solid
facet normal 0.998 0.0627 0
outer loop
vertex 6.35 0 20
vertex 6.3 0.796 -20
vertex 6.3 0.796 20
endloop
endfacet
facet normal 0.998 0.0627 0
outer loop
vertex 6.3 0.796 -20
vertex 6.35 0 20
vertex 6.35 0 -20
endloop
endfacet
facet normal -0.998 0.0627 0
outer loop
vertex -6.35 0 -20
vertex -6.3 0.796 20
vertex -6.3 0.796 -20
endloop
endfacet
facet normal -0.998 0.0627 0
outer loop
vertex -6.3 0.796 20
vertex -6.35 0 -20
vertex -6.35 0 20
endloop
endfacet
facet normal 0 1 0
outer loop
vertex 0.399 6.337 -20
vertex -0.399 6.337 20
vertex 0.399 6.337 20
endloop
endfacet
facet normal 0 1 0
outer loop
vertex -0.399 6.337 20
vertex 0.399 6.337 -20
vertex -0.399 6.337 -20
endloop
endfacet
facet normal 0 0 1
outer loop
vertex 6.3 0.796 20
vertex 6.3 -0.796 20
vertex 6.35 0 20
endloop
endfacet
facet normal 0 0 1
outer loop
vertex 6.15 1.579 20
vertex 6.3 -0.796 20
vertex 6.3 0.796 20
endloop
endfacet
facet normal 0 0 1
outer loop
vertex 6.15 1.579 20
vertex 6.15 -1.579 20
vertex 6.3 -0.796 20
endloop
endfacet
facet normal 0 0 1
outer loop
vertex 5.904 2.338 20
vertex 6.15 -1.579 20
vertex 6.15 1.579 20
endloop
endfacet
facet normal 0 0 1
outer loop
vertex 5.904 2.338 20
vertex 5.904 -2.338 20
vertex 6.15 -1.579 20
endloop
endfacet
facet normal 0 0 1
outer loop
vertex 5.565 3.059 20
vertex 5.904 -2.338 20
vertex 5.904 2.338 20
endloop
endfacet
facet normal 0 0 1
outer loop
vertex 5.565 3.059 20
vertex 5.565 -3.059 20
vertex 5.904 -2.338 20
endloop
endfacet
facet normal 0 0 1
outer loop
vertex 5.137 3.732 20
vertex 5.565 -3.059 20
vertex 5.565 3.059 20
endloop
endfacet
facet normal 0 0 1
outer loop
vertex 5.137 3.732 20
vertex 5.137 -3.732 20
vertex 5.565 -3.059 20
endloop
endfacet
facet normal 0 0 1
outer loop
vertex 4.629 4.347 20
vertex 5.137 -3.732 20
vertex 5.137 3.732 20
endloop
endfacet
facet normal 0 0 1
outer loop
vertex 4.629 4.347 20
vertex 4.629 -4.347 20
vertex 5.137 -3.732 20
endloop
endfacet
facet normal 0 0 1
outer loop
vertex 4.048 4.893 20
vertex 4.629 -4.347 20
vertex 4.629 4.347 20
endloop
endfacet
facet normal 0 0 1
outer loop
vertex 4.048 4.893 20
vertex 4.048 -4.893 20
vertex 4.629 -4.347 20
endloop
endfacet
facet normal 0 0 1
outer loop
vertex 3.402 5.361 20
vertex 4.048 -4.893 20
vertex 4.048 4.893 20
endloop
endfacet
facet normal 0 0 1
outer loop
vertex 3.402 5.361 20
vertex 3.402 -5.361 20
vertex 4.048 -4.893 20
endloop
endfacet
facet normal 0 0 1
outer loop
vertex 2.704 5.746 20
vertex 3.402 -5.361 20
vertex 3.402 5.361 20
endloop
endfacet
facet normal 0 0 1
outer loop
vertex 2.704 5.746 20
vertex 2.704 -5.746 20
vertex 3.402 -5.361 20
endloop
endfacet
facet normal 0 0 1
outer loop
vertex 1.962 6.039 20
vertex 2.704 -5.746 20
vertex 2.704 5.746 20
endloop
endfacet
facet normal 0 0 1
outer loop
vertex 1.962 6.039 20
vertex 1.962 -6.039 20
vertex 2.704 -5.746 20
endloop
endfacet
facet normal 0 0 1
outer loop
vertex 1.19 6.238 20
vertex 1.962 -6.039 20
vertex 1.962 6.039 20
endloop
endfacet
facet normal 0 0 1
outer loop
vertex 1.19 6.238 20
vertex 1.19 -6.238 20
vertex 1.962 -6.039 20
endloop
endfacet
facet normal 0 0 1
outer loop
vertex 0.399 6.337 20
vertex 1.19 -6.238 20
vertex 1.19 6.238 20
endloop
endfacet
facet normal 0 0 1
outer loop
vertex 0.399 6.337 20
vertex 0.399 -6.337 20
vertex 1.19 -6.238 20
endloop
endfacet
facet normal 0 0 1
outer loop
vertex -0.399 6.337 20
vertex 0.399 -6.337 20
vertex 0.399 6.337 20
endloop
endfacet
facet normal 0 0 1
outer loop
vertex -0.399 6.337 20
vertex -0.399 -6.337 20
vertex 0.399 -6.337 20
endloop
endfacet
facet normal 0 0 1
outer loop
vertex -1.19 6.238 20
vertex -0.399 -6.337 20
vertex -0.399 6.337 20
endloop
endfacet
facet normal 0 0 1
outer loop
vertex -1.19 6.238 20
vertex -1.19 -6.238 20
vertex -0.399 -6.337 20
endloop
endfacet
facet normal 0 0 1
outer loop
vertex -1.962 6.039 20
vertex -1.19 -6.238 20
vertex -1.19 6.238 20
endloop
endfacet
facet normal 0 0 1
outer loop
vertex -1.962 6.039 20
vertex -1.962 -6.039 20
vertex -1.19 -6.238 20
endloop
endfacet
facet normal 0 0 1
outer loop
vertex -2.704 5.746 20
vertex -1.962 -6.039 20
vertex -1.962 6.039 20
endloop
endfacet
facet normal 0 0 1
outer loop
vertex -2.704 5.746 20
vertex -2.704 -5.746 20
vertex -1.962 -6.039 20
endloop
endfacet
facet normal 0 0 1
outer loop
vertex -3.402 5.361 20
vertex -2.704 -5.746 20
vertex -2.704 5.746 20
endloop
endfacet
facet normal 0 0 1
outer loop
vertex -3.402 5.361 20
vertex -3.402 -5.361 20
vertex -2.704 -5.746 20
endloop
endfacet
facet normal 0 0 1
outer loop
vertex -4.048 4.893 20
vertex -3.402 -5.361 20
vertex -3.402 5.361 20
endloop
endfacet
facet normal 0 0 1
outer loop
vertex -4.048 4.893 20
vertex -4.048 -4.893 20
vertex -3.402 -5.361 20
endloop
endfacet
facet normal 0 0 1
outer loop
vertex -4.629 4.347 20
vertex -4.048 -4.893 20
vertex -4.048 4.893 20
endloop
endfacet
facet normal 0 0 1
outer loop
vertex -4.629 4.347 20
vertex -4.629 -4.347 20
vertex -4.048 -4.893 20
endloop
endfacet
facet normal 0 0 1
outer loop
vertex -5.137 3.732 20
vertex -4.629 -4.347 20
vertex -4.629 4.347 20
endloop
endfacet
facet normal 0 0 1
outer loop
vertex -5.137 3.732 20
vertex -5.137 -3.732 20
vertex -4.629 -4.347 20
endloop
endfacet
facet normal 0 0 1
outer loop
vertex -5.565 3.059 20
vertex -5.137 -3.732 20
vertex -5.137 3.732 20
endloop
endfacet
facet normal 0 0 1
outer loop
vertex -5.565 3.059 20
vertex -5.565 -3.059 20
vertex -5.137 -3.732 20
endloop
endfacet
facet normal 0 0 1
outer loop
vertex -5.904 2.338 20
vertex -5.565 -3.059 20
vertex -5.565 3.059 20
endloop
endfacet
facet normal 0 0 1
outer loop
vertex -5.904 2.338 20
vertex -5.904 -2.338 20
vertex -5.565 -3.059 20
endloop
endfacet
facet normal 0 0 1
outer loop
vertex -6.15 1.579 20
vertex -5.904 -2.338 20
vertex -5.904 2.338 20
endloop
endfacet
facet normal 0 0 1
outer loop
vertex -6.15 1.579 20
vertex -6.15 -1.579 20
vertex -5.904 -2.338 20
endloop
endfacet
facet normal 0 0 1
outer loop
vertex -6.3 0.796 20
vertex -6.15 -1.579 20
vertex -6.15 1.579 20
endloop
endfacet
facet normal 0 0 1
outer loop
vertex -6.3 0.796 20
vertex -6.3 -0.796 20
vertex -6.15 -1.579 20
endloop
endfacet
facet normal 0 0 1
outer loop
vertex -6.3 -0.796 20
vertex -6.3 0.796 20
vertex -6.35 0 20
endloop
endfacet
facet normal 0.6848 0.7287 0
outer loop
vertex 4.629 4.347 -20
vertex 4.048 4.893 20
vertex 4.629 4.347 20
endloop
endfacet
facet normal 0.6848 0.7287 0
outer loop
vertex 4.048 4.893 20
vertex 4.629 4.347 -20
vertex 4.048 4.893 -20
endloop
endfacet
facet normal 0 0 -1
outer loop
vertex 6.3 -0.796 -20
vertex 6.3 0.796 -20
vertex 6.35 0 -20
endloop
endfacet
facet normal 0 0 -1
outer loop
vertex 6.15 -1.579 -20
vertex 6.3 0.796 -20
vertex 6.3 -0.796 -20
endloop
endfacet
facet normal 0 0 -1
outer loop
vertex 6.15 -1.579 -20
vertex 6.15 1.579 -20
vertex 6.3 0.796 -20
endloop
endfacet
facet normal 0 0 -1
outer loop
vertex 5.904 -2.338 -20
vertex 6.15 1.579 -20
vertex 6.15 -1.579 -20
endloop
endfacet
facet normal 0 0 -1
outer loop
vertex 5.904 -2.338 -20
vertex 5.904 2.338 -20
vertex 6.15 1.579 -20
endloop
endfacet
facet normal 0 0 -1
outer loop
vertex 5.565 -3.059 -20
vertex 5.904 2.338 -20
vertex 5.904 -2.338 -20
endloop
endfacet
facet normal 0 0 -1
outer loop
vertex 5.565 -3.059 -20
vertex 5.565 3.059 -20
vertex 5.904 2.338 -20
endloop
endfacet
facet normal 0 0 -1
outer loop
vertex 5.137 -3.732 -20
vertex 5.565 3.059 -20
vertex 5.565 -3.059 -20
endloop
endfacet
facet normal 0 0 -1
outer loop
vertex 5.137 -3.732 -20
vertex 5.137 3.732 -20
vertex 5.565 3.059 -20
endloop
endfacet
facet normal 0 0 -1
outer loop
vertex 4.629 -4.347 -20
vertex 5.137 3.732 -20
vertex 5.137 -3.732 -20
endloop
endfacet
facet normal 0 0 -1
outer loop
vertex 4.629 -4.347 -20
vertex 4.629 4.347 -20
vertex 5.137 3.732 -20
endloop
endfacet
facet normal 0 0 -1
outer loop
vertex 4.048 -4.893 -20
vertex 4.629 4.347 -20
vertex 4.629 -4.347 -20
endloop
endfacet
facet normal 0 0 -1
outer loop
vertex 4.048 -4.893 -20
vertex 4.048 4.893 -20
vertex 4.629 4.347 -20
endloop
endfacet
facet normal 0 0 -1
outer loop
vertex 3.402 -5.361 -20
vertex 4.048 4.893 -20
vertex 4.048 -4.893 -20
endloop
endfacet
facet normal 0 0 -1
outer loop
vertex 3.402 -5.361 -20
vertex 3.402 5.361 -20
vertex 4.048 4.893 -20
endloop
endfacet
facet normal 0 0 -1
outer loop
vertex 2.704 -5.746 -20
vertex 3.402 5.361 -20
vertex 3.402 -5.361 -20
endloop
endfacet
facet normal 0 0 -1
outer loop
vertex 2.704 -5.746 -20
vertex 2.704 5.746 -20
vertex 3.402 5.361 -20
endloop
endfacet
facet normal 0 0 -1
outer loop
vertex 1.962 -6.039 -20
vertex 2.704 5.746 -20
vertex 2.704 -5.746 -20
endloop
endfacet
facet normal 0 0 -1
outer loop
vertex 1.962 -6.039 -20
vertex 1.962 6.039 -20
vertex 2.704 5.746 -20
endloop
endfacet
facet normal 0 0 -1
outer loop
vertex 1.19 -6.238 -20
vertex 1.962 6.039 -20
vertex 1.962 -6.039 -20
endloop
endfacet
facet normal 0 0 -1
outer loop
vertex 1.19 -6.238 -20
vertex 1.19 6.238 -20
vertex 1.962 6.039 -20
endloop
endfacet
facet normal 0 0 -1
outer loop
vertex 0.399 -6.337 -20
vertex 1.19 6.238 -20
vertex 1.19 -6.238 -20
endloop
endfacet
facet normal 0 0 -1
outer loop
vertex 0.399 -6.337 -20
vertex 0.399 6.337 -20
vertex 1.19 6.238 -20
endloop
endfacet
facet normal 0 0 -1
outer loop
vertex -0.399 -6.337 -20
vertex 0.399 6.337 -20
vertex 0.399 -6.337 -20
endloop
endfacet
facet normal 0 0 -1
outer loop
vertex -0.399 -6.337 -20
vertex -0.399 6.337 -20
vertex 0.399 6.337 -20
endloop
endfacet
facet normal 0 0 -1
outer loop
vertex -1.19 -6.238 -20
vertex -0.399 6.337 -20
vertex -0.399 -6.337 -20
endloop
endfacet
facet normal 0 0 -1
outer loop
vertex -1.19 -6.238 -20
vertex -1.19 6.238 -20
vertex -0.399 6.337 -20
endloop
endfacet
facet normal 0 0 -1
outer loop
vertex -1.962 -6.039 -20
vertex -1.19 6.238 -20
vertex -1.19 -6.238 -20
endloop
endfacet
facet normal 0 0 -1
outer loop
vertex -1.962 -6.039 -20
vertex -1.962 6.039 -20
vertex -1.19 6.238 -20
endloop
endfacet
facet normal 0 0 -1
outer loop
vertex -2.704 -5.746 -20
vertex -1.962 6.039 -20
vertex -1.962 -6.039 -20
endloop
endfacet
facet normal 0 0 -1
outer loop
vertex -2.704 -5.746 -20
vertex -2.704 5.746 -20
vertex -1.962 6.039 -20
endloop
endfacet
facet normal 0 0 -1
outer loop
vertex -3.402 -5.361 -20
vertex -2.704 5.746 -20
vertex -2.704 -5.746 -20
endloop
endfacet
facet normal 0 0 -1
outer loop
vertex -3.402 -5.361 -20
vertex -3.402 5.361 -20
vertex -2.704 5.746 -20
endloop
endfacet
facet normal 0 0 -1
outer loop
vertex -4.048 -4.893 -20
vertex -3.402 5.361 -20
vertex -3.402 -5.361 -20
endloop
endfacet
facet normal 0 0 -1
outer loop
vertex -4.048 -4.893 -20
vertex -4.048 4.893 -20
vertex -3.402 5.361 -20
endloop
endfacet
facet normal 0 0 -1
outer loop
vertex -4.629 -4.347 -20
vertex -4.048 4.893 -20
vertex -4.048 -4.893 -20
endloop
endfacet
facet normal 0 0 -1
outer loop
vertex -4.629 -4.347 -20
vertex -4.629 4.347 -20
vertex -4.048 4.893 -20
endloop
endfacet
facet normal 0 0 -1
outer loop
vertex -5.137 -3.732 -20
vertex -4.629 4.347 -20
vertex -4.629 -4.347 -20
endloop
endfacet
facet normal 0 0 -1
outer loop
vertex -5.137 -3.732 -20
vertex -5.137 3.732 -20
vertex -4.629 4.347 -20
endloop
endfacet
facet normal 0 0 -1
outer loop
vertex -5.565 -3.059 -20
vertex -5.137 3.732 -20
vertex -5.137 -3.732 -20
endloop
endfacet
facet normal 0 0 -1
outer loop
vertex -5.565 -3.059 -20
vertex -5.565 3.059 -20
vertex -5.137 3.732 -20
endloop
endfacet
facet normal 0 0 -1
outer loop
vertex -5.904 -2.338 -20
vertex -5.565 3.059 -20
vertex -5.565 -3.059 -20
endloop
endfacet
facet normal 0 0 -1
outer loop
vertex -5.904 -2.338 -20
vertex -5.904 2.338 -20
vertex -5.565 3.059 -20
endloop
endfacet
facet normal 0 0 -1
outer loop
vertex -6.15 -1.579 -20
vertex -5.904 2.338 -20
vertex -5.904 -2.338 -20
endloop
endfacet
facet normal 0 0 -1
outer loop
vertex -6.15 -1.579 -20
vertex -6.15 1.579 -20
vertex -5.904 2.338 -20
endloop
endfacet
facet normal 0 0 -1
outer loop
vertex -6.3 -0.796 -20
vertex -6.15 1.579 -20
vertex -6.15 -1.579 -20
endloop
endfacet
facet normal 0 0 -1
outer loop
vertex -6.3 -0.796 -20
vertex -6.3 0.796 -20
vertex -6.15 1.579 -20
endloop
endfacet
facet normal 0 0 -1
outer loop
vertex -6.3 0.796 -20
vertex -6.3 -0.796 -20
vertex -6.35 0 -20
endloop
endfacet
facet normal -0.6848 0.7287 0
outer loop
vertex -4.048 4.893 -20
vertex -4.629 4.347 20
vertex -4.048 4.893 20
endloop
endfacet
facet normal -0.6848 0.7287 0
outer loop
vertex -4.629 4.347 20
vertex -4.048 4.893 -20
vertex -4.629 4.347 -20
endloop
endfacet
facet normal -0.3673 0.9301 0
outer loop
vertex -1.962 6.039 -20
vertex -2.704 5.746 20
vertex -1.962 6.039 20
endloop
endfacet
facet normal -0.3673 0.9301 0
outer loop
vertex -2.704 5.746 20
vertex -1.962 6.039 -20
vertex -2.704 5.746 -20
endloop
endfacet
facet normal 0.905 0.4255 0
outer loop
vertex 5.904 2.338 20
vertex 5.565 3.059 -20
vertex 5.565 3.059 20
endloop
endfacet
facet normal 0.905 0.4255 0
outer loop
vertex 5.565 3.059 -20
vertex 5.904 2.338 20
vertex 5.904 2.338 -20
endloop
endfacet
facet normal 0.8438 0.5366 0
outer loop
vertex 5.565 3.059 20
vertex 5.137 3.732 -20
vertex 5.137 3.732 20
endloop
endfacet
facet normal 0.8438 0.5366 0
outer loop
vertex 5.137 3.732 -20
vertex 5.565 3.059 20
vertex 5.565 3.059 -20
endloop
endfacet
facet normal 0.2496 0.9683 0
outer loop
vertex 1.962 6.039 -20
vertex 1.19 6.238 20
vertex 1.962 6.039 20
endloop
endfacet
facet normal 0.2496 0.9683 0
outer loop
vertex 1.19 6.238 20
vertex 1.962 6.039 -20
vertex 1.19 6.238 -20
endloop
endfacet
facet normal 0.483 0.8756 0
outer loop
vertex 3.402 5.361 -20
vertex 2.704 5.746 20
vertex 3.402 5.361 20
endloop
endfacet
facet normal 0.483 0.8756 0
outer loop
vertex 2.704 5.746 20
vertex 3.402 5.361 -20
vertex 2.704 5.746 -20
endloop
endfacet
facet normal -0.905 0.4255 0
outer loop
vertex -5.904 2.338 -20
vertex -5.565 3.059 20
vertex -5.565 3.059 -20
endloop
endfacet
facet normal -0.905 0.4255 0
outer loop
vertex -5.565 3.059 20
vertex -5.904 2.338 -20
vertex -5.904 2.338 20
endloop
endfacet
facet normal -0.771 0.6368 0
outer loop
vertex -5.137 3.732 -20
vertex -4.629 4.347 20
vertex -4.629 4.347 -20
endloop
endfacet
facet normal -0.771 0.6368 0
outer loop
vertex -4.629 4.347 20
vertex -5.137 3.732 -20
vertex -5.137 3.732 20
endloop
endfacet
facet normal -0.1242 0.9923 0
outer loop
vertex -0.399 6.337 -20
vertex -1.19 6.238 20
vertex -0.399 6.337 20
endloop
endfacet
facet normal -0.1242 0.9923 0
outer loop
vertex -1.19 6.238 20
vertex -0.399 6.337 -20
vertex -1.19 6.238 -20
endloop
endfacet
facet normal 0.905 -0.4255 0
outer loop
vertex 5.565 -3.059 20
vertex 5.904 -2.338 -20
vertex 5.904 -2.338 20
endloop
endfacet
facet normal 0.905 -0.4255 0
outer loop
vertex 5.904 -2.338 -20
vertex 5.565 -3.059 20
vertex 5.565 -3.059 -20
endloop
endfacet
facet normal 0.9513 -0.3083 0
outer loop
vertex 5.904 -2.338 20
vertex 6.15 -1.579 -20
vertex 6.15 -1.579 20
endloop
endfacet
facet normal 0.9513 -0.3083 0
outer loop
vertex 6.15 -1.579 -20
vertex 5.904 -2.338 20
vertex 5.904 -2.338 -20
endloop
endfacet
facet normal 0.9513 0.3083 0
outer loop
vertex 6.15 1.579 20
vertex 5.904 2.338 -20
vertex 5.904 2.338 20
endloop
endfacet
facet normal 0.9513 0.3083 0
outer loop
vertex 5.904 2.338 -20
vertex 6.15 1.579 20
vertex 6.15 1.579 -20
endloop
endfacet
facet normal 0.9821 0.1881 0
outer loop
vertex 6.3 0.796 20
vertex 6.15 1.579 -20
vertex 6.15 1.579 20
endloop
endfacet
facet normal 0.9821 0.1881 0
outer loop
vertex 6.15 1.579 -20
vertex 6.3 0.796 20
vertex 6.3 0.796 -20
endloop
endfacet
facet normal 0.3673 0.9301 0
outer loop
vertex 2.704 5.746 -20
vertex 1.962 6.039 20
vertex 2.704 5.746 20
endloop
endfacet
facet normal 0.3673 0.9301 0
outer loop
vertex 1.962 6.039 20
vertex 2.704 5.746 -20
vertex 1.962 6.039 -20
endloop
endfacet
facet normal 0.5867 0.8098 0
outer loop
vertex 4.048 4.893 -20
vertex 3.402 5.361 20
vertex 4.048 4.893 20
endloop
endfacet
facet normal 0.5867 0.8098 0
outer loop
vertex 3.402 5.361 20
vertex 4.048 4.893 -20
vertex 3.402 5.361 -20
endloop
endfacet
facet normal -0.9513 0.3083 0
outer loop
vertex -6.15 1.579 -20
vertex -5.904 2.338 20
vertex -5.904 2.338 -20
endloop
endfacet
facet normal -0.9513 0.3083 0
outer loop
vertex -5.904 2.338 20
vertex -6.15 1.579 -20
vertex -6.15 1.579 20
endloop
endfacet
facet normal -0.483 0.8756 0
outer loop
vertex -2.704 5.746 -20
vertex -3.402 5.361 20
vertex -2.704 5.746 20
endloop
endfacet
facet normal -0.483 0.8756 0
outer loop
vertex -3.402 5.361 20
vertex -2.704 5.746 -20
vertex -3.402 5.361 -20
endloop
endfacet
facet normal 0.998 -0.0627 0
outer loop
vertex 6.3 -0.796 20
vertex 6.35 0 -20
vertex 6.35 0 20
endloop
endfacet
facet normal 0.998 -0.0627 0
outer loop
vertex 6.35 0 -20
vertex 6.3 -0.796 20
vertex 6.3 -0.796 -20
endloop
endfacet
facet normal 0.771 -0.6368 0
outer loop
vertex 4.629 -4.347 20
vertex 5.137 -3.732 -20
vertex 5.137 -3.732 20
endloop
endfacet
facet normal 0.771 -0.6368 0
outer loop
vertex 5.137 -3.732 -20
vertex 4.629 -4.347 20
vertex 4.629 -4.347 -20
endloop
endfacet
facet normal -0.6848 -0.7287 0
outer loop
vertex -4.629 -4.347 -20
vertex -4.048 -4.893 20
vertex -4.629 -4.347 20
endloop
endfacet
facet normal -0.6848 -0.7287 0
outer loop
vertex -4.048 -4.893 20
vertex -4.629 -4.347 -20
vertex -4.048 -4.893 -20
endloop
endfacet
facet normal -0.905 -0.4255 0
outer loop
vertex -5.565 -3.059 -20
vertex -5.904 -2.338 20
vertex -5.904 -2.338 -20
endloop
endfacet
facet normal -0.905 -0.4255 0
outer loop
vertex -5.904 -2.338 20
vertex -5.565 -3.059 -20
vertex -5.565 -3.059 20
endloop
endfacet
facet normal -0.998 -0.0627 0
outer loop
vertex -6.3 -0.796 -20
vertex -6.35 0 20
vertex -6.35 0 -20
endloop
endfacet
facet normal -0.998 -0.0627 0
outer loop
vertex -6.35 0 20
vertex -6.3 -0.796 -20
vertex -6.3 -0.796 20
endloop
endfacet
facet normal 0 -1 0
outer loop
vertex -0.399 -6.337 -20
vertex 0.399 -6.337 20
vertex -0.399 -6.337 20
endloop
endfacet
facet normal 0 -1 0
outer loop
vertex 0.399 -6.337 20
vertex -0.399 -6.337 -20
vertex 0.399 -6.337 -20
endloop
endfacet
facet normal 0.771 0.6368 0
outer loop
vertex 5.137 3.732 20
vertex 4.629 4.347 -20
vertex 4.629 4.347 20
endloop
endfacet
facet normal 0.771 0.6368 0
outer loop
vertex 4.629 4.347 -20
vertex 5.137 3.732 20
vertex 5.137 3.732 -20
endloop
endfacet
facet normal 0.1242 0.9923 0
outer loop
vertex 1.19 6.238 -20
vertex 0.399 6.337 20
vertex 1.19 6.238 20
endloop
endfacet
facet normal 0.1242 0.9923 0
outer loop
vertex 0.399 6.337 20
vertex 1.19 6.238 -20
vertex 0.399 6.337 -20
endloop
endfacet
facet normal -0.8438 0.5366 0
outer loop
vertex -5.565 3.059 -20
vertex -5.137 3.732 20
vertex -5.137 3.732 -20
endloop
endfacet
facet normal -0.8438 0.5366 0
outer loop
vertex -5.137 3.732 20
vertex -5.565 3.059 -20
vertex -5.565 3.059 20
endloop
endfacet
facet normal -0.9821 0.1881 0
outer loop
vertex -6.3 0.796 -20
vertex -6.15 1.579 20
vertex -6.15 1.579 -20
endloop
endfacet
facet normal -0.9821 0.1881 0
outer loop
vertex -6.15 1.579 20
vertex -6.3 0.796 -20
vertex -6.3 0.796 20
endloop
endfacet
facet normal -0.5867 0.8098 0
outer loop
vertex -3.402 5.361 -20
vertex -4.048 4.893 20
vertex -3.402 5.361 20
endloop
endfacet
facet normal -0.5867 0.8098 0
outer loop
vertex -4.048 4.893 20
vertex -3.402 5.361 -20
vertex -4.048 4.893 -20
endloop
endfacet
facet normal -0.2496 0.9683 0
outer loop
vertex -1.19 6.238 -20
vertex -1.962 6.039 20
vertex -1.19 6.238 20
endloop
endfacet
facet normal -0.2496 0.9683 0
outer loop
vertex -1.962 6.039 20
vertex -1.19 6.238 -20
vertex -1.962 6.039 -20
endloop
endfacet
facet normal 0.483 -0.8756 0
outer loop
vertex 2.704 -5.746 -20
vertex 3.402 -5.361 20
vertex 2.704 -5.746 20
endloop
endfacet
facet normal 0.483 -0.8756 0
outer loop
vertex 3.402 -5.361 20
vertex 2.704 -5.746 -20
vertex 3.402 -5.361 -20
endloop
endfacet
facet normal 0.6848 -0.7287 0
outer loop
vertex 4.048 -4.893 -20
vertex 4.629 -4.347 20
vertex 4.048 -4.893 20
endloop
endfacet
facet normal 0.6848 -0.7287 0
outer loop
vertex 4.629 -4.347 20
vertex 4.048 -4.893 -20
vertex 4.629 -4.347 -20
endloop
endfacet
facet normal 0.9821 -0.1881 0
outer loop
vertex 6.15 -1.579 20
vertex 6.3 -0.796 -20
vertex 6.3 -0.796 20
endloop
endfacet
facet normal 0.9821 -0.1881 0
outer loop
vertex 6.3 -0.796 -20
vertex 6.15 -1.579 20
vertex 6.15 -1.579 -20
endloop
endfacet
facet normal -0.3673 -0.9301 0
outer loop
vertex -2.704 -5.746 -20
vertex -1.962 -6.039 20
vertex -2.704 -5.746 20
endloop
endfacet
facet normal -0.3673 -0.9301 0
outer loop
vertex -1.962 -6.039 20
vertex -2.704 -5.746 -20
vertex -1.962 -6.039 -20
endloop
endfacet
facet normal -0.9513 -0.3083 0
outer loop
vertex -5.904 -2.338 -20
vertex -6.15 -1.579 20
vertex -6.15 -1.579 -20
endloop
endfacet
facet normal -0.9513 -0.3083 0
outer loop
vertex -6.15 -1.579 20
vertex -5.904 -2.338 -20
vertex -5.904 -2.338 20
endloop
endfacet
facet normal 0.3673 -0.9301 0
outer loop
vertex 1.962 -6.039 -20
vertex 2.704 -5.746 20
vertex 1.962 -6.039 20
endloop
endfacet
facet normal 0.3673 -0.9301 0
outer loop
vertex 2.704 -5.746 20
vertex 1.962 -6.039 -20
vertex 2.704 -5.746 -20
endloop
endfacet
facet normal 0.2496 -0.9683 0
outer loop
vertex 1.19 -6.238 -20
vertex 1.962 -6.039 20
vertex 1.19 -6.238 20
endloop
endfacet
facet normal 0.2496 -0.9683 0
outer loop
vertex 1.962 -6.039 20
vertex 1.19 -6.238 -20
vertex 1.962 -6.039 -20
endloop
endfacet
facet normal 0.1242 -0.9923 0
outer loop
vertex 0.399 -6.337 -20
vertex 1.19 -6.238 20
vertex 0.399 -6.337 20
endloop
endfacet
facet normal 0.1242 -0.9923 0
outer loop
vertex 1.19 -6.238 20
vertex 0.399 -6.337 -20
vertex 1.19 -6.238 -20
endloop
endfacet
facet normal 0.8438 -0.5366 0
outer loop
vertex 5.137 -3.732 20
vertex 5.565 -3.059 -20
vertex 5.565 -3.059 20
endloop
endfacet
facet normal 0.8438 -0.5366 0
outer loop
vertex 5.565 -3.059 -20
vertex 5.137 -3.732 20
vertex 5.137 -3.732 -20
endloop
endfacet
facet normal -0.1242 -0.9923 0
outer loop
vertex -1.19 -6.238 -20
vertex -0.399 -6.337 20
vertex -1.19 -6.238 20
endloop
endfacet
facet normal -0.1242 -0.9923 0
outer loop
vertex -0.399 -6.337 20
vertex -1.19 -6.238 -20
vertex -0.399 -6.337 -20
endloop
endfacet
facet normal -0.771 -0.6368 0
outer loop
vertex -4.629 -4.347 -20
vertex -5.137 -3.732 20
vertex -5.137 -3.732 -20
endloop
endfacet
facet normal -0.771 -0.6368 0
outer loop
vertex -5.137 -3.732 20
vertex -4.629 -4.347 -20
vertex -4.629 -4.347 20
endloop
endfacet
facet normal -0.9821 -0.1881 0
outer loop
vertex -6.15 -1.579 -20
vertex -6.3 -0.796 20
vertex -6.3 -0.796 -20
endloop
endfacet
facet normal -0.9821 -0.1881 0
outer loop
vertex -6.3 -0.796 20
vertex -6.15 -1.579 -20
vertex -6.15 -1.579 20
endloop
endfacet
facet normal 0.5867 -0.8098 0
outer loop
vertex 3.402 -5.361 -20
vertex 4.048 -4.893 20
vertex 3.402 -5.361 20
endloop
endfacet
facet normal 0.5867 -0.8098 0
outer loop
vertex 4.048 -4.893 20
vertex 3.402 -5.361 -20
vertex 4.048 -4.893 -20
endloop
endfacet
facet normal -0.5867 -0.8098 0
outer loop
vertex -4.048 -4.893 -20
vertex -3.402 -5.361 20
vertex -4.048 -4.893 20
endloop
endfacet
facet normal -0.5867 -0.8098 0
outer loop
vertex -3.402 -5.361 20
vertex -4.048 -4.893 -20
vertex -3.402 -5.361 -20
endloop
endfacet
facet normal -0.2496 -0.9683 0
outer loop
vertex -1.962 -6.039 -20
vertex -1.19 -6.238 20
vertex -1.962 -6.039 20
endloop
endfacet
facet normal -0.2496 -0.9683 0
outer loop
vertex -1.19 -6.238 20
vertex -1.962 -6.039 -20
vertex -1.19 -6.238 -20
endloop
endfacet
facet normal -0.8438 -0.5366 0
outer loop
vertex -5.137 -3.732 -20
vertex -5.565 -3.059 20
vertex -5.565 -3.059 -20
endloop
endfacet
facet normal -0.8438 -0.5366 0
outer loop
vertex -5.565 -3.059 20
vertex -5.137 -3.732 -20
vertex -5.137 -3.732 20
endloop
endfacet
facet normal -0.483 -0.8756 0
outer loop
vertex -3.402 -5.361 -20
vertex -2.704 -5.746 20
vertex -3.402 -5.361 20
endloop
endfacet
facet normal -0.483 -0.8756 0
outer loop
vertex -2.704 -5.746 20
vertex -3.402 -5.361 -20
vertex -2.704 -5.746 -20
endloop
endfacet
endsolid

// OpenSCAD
$fn = 50;


difference() {
	union() {
		translate(v = [0, 0, -20.0000000000]) {
			cylinder(h = 40, r = 6.3500000000);
		}
	}
	union() {
		translate(v = [0, 0, -100.0000000000]) {
			cylinder(h = 200, r = 0);
		}
	}
}
